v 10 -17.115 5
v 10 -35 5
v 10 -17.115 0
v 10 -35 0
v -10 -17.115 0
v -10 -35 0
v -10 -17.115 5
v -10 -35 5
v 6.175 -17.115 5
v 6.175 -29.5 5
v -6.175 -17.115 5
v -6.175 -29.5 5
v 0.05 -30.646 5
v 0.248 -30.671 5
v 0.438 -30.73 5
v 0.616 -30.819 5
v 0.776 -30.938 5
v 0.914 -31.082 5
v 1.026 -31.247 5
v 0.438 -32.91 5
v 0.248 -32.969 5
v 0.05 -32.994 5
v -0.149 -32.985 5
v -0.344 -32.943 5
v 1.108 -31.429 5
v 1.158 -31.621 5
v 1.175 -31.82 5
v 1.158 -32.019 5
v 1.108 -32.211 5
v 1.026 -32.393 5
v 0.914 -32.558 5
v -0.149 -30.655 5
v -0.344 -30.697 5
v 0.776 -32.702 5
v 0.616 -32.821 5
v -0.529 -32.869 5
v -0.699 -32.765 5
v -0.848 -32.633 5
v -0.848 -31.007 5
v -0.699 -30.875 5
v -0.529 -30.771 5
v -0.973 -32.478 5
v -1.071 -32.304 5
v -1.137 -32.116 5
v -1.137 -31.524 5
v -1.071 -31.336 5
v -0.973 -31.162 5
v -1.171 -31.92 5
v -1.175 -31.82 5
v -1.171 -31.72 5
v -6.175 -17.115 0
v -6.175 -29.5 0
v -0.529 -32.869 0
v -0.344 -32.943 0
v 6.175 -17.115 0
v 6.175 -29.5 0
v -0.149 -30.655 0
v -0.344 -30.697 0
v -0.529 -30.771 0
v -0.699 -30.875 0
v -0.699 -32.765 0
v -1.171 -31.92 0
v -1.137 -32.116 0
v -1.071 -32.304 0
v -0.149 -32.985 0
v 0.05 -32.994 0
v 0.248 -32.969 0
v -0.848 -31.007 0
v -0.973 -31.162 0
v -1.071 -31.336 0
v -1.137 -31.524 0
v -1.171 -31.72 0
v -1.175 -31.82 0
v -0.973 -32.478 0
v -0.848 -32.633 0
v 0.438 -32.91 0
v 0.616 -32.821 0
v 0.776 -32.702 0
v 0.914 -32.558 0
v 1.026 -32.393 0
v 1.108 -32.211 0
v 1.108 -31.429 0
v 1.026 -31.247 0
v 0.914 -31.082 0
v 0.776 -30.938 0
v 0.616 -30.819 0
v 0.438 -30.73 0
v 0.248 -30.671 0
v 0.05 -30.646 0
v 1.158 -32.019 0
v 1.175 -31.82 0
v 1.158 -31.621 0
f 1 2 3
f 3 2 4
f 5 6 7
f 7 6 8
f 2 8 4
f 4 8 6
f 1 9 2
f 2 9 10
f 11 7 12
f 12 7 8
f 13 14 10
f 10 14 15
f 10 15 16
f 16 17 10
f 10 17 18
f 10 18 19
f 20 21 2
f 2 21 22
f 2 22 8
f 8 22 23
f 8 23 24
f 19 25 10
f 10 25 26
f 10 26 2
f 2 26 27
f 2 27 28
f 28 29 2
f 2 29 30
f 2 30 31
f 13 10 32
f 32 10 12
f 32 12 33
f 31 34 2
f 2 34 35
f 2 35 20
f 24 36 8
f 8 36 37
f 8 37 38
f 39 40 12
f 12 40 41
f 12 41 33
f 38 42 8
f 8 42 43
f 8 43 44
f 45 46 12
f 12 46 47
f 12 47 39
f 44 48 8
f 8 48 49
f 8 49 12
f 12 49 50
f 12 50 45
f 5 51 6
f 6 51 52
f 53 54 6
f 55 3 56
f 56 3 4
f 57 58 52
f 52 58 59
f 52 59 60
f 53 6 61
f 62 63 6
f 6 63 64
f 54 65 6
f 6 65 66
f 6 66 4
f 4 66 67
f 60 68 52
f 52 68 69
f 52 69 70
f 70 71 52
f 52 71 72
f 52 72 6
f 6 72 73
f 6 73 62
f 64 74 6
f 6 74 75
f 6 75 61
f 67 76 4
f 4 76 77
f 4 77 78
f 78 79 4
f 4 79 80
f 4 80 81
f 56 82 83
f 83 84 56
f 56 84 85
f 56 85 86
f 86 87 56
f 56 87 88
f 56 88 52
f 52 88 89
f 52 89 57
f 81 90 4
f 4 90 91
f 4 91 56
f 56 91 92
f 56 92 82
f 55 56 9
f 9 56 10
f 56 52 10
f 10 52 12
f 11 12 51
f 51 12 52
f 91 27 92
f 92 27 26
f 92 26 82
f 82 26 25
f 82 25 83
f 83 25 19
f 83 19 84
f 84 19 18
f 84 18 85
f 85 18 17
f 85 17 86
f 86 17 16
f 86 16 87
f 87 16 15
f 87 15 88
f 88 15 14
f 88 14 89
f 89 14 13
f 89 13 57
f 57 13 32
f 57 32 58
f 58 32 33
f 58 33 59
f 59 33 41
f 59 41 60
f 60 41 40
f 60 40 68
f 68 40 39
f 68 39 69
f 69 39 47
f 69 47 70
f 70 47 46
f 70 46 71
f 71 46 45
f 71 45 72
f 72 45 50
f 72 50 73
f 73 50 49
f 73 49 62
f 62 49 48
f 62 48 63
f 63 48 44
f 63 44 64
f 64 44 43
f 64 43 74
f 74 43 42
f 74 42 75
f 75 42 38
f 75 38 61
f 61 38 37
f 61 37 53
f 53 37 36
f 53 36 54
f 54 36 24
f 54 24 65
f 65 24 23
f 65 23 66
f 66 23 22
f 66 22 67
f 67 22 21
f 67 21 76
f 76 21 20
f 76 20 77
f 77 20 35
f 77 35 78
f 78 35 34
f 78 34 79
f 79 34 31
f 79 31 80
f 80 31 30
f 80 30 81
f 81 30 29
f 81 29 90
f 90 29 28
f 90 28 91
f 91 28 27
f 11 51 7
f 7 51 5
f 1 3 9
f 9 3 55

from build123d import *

# Parameters (mm, degrees)
SKETCH3_W           = 20
SKETCH3_H           = 70
BOSS_EXTRUDE3_DEPTH = 5
CUT_EXTRUDE2_DEPTH  = 2
SKETCH6_R           = 3.57
CUT_EXTRUDE3_DEPTH  = 3
SKETCH7_R           = 1.175
SKETCH7_W           = 12.35
SKETCH7_H           = 23
CUT_EXTRUDE4_DEPTH  = 5
SKETCH8_W           = 1.25
SKETCH8_H           = 25
CUT_EXTRUDE5_DEPTH  = 30
SKETCH10_R          = 1.175
CUT_EXTRUDE8_DEPTH  = 10


with BuildPart() as part:
    # Sketch3 → Boss-Extrude3 (new body)
    with BuildSketch(Plane.XY):
        Rectangle(SKETCH3_W, SKETCH3_H)
    extrude(amount=BOSS_EXTRUDE3_DEPTH)

    # Sketch4 → Cut-Extrude2 (cut)
    with BuildSketch(Plane.XY.offset(5)):
        with BuildLine():
            Line((-2.85, 24.850023256), (-1.875, 12.739206809))
            Line((-1.875, 12.739206809), (1.875, 12.739206809))
            Line((1.875, 12.739206809), (2.85, 24.850023256))
            ThreePointArc((2.85, 24.850023256), (0, 23.43), (-2.85, 24.850023256))
        make_face()
        with BuildLine():
            Line((1.875, 12.739206809), (-1.875, 12.739206809))
            ThreePointArc((-1.875, 12.739206809), (0, 10.864206809), (1.875, 12.739206809))
        make_face()
        with BuildLine():
            ThreePointArc((3.57, 27), (-1.133666618, 30.385217866), (-2.85, 24.850023256))
            Line((-2.85, 24.850023256), (2.85, 24.850023256))
            ThreePointArc((2.85, 24.850023256), (3.385217866, 25.866333382), (3.57, 27))
        make_face()
        with BuildLine():
            Line((2.85, 24.850023256), (-2.85, 24.850023256))
            ThreePointArc((-2.85, 24.850023256), (0, 23.43), (2.85, 24.850023256))
        make_face()
    extrude(amount=-CUT_EXTRUDE2_DEPTH, mode=Mode.SUBTRACT)

    # Sketch6 → Cut-Extrude3 (cut)
    with BuildSketch(Plane.XY.offset(3)):
        with Locations((0, 27)):
            Circle(SKETCH6_R)
    extrude(amount=-CUT_EXTRUDE3_DEPTH, mode=Mode.SUBTRACT)

    # Sketch7 → Cut-Extrude4 (cut)
    with BuildSketch(Plane.XY.offset(5)):
        with Locations((0, -4.18)):
            Circle(SKETCH7_R)
        with Locations((0, -31.82)):
            Circle(SKETCH7_R)
        with Locations((0, -18)):
            Rectangle(SKETCH7_W, SKETCH7_H)
    extrude(amount=-CUT_EXTRUDE4_DEPTH, mode=Mode.SUBTRACT)

    # Sketch8 → Cut-Extrude5 (cut)
    with BuildSketch(Plane(origin=(10, 0, 0), x_dir=(0, 0, -1), z_dir=(1, 0, 0))):
        with Locations((-0.625, 22.5)):
            Rectangle(SKETCH8_W, SKETCH8_H)
    extrude(amount=-CUT_EXTRUDE5_DEPTH, mode=Mode.SUBTRACT)

    # Sketch10 → Cut-Extrude8 (cut)
    with BuildSketch(Plane.XY.offset(5)):
        Polygon((-10, 35), (-10, -17.114677165), (-6.175, -17.114677165), (-6.175, -6.5), (6.175, -6.5), (6.175, -17.114677165), (10, -17.114677165), (10, 35), align=None)
        with Locations((0, -4.18)):
            Circle(SKETCH10_R, mode=Mode.SUBTRACT)
        with BuildLine():
            Line((2.85, 24.850023256), (1.875, 12.739206809))
            ThreePointArc((1.875, 12.739206809), (0, 10.864206809), (-1.875, 12.739206809))
            Line((-1.875, 12.739206809), (-2.85, 24.850023256))
            ThreePointArc((-2.85, 24.850023256), (0, 30.57), (2.85, 24.850023256))
        make_face(mode=Mode.SUBTRACT)
        with BuildLine():
            ThreePointArc((1.875, 12.739206809), (0, 10.864206809), (-1.875, 12.739206809))
            Line((-1.875, 12.739206809), (-2.85, 24.850023256))
            ThreePointArc((-2.85, 24.850023256), (0, 30.57), (2.85, 24.850023256))
            Line((2.85, 24.850023256), (1.875, 12.739206809))
        make_face()
    extrude(amount=-CUT_EXTRUDE8_DEPTH, mode=Mode.SUBTRACT)


solid = part.part
